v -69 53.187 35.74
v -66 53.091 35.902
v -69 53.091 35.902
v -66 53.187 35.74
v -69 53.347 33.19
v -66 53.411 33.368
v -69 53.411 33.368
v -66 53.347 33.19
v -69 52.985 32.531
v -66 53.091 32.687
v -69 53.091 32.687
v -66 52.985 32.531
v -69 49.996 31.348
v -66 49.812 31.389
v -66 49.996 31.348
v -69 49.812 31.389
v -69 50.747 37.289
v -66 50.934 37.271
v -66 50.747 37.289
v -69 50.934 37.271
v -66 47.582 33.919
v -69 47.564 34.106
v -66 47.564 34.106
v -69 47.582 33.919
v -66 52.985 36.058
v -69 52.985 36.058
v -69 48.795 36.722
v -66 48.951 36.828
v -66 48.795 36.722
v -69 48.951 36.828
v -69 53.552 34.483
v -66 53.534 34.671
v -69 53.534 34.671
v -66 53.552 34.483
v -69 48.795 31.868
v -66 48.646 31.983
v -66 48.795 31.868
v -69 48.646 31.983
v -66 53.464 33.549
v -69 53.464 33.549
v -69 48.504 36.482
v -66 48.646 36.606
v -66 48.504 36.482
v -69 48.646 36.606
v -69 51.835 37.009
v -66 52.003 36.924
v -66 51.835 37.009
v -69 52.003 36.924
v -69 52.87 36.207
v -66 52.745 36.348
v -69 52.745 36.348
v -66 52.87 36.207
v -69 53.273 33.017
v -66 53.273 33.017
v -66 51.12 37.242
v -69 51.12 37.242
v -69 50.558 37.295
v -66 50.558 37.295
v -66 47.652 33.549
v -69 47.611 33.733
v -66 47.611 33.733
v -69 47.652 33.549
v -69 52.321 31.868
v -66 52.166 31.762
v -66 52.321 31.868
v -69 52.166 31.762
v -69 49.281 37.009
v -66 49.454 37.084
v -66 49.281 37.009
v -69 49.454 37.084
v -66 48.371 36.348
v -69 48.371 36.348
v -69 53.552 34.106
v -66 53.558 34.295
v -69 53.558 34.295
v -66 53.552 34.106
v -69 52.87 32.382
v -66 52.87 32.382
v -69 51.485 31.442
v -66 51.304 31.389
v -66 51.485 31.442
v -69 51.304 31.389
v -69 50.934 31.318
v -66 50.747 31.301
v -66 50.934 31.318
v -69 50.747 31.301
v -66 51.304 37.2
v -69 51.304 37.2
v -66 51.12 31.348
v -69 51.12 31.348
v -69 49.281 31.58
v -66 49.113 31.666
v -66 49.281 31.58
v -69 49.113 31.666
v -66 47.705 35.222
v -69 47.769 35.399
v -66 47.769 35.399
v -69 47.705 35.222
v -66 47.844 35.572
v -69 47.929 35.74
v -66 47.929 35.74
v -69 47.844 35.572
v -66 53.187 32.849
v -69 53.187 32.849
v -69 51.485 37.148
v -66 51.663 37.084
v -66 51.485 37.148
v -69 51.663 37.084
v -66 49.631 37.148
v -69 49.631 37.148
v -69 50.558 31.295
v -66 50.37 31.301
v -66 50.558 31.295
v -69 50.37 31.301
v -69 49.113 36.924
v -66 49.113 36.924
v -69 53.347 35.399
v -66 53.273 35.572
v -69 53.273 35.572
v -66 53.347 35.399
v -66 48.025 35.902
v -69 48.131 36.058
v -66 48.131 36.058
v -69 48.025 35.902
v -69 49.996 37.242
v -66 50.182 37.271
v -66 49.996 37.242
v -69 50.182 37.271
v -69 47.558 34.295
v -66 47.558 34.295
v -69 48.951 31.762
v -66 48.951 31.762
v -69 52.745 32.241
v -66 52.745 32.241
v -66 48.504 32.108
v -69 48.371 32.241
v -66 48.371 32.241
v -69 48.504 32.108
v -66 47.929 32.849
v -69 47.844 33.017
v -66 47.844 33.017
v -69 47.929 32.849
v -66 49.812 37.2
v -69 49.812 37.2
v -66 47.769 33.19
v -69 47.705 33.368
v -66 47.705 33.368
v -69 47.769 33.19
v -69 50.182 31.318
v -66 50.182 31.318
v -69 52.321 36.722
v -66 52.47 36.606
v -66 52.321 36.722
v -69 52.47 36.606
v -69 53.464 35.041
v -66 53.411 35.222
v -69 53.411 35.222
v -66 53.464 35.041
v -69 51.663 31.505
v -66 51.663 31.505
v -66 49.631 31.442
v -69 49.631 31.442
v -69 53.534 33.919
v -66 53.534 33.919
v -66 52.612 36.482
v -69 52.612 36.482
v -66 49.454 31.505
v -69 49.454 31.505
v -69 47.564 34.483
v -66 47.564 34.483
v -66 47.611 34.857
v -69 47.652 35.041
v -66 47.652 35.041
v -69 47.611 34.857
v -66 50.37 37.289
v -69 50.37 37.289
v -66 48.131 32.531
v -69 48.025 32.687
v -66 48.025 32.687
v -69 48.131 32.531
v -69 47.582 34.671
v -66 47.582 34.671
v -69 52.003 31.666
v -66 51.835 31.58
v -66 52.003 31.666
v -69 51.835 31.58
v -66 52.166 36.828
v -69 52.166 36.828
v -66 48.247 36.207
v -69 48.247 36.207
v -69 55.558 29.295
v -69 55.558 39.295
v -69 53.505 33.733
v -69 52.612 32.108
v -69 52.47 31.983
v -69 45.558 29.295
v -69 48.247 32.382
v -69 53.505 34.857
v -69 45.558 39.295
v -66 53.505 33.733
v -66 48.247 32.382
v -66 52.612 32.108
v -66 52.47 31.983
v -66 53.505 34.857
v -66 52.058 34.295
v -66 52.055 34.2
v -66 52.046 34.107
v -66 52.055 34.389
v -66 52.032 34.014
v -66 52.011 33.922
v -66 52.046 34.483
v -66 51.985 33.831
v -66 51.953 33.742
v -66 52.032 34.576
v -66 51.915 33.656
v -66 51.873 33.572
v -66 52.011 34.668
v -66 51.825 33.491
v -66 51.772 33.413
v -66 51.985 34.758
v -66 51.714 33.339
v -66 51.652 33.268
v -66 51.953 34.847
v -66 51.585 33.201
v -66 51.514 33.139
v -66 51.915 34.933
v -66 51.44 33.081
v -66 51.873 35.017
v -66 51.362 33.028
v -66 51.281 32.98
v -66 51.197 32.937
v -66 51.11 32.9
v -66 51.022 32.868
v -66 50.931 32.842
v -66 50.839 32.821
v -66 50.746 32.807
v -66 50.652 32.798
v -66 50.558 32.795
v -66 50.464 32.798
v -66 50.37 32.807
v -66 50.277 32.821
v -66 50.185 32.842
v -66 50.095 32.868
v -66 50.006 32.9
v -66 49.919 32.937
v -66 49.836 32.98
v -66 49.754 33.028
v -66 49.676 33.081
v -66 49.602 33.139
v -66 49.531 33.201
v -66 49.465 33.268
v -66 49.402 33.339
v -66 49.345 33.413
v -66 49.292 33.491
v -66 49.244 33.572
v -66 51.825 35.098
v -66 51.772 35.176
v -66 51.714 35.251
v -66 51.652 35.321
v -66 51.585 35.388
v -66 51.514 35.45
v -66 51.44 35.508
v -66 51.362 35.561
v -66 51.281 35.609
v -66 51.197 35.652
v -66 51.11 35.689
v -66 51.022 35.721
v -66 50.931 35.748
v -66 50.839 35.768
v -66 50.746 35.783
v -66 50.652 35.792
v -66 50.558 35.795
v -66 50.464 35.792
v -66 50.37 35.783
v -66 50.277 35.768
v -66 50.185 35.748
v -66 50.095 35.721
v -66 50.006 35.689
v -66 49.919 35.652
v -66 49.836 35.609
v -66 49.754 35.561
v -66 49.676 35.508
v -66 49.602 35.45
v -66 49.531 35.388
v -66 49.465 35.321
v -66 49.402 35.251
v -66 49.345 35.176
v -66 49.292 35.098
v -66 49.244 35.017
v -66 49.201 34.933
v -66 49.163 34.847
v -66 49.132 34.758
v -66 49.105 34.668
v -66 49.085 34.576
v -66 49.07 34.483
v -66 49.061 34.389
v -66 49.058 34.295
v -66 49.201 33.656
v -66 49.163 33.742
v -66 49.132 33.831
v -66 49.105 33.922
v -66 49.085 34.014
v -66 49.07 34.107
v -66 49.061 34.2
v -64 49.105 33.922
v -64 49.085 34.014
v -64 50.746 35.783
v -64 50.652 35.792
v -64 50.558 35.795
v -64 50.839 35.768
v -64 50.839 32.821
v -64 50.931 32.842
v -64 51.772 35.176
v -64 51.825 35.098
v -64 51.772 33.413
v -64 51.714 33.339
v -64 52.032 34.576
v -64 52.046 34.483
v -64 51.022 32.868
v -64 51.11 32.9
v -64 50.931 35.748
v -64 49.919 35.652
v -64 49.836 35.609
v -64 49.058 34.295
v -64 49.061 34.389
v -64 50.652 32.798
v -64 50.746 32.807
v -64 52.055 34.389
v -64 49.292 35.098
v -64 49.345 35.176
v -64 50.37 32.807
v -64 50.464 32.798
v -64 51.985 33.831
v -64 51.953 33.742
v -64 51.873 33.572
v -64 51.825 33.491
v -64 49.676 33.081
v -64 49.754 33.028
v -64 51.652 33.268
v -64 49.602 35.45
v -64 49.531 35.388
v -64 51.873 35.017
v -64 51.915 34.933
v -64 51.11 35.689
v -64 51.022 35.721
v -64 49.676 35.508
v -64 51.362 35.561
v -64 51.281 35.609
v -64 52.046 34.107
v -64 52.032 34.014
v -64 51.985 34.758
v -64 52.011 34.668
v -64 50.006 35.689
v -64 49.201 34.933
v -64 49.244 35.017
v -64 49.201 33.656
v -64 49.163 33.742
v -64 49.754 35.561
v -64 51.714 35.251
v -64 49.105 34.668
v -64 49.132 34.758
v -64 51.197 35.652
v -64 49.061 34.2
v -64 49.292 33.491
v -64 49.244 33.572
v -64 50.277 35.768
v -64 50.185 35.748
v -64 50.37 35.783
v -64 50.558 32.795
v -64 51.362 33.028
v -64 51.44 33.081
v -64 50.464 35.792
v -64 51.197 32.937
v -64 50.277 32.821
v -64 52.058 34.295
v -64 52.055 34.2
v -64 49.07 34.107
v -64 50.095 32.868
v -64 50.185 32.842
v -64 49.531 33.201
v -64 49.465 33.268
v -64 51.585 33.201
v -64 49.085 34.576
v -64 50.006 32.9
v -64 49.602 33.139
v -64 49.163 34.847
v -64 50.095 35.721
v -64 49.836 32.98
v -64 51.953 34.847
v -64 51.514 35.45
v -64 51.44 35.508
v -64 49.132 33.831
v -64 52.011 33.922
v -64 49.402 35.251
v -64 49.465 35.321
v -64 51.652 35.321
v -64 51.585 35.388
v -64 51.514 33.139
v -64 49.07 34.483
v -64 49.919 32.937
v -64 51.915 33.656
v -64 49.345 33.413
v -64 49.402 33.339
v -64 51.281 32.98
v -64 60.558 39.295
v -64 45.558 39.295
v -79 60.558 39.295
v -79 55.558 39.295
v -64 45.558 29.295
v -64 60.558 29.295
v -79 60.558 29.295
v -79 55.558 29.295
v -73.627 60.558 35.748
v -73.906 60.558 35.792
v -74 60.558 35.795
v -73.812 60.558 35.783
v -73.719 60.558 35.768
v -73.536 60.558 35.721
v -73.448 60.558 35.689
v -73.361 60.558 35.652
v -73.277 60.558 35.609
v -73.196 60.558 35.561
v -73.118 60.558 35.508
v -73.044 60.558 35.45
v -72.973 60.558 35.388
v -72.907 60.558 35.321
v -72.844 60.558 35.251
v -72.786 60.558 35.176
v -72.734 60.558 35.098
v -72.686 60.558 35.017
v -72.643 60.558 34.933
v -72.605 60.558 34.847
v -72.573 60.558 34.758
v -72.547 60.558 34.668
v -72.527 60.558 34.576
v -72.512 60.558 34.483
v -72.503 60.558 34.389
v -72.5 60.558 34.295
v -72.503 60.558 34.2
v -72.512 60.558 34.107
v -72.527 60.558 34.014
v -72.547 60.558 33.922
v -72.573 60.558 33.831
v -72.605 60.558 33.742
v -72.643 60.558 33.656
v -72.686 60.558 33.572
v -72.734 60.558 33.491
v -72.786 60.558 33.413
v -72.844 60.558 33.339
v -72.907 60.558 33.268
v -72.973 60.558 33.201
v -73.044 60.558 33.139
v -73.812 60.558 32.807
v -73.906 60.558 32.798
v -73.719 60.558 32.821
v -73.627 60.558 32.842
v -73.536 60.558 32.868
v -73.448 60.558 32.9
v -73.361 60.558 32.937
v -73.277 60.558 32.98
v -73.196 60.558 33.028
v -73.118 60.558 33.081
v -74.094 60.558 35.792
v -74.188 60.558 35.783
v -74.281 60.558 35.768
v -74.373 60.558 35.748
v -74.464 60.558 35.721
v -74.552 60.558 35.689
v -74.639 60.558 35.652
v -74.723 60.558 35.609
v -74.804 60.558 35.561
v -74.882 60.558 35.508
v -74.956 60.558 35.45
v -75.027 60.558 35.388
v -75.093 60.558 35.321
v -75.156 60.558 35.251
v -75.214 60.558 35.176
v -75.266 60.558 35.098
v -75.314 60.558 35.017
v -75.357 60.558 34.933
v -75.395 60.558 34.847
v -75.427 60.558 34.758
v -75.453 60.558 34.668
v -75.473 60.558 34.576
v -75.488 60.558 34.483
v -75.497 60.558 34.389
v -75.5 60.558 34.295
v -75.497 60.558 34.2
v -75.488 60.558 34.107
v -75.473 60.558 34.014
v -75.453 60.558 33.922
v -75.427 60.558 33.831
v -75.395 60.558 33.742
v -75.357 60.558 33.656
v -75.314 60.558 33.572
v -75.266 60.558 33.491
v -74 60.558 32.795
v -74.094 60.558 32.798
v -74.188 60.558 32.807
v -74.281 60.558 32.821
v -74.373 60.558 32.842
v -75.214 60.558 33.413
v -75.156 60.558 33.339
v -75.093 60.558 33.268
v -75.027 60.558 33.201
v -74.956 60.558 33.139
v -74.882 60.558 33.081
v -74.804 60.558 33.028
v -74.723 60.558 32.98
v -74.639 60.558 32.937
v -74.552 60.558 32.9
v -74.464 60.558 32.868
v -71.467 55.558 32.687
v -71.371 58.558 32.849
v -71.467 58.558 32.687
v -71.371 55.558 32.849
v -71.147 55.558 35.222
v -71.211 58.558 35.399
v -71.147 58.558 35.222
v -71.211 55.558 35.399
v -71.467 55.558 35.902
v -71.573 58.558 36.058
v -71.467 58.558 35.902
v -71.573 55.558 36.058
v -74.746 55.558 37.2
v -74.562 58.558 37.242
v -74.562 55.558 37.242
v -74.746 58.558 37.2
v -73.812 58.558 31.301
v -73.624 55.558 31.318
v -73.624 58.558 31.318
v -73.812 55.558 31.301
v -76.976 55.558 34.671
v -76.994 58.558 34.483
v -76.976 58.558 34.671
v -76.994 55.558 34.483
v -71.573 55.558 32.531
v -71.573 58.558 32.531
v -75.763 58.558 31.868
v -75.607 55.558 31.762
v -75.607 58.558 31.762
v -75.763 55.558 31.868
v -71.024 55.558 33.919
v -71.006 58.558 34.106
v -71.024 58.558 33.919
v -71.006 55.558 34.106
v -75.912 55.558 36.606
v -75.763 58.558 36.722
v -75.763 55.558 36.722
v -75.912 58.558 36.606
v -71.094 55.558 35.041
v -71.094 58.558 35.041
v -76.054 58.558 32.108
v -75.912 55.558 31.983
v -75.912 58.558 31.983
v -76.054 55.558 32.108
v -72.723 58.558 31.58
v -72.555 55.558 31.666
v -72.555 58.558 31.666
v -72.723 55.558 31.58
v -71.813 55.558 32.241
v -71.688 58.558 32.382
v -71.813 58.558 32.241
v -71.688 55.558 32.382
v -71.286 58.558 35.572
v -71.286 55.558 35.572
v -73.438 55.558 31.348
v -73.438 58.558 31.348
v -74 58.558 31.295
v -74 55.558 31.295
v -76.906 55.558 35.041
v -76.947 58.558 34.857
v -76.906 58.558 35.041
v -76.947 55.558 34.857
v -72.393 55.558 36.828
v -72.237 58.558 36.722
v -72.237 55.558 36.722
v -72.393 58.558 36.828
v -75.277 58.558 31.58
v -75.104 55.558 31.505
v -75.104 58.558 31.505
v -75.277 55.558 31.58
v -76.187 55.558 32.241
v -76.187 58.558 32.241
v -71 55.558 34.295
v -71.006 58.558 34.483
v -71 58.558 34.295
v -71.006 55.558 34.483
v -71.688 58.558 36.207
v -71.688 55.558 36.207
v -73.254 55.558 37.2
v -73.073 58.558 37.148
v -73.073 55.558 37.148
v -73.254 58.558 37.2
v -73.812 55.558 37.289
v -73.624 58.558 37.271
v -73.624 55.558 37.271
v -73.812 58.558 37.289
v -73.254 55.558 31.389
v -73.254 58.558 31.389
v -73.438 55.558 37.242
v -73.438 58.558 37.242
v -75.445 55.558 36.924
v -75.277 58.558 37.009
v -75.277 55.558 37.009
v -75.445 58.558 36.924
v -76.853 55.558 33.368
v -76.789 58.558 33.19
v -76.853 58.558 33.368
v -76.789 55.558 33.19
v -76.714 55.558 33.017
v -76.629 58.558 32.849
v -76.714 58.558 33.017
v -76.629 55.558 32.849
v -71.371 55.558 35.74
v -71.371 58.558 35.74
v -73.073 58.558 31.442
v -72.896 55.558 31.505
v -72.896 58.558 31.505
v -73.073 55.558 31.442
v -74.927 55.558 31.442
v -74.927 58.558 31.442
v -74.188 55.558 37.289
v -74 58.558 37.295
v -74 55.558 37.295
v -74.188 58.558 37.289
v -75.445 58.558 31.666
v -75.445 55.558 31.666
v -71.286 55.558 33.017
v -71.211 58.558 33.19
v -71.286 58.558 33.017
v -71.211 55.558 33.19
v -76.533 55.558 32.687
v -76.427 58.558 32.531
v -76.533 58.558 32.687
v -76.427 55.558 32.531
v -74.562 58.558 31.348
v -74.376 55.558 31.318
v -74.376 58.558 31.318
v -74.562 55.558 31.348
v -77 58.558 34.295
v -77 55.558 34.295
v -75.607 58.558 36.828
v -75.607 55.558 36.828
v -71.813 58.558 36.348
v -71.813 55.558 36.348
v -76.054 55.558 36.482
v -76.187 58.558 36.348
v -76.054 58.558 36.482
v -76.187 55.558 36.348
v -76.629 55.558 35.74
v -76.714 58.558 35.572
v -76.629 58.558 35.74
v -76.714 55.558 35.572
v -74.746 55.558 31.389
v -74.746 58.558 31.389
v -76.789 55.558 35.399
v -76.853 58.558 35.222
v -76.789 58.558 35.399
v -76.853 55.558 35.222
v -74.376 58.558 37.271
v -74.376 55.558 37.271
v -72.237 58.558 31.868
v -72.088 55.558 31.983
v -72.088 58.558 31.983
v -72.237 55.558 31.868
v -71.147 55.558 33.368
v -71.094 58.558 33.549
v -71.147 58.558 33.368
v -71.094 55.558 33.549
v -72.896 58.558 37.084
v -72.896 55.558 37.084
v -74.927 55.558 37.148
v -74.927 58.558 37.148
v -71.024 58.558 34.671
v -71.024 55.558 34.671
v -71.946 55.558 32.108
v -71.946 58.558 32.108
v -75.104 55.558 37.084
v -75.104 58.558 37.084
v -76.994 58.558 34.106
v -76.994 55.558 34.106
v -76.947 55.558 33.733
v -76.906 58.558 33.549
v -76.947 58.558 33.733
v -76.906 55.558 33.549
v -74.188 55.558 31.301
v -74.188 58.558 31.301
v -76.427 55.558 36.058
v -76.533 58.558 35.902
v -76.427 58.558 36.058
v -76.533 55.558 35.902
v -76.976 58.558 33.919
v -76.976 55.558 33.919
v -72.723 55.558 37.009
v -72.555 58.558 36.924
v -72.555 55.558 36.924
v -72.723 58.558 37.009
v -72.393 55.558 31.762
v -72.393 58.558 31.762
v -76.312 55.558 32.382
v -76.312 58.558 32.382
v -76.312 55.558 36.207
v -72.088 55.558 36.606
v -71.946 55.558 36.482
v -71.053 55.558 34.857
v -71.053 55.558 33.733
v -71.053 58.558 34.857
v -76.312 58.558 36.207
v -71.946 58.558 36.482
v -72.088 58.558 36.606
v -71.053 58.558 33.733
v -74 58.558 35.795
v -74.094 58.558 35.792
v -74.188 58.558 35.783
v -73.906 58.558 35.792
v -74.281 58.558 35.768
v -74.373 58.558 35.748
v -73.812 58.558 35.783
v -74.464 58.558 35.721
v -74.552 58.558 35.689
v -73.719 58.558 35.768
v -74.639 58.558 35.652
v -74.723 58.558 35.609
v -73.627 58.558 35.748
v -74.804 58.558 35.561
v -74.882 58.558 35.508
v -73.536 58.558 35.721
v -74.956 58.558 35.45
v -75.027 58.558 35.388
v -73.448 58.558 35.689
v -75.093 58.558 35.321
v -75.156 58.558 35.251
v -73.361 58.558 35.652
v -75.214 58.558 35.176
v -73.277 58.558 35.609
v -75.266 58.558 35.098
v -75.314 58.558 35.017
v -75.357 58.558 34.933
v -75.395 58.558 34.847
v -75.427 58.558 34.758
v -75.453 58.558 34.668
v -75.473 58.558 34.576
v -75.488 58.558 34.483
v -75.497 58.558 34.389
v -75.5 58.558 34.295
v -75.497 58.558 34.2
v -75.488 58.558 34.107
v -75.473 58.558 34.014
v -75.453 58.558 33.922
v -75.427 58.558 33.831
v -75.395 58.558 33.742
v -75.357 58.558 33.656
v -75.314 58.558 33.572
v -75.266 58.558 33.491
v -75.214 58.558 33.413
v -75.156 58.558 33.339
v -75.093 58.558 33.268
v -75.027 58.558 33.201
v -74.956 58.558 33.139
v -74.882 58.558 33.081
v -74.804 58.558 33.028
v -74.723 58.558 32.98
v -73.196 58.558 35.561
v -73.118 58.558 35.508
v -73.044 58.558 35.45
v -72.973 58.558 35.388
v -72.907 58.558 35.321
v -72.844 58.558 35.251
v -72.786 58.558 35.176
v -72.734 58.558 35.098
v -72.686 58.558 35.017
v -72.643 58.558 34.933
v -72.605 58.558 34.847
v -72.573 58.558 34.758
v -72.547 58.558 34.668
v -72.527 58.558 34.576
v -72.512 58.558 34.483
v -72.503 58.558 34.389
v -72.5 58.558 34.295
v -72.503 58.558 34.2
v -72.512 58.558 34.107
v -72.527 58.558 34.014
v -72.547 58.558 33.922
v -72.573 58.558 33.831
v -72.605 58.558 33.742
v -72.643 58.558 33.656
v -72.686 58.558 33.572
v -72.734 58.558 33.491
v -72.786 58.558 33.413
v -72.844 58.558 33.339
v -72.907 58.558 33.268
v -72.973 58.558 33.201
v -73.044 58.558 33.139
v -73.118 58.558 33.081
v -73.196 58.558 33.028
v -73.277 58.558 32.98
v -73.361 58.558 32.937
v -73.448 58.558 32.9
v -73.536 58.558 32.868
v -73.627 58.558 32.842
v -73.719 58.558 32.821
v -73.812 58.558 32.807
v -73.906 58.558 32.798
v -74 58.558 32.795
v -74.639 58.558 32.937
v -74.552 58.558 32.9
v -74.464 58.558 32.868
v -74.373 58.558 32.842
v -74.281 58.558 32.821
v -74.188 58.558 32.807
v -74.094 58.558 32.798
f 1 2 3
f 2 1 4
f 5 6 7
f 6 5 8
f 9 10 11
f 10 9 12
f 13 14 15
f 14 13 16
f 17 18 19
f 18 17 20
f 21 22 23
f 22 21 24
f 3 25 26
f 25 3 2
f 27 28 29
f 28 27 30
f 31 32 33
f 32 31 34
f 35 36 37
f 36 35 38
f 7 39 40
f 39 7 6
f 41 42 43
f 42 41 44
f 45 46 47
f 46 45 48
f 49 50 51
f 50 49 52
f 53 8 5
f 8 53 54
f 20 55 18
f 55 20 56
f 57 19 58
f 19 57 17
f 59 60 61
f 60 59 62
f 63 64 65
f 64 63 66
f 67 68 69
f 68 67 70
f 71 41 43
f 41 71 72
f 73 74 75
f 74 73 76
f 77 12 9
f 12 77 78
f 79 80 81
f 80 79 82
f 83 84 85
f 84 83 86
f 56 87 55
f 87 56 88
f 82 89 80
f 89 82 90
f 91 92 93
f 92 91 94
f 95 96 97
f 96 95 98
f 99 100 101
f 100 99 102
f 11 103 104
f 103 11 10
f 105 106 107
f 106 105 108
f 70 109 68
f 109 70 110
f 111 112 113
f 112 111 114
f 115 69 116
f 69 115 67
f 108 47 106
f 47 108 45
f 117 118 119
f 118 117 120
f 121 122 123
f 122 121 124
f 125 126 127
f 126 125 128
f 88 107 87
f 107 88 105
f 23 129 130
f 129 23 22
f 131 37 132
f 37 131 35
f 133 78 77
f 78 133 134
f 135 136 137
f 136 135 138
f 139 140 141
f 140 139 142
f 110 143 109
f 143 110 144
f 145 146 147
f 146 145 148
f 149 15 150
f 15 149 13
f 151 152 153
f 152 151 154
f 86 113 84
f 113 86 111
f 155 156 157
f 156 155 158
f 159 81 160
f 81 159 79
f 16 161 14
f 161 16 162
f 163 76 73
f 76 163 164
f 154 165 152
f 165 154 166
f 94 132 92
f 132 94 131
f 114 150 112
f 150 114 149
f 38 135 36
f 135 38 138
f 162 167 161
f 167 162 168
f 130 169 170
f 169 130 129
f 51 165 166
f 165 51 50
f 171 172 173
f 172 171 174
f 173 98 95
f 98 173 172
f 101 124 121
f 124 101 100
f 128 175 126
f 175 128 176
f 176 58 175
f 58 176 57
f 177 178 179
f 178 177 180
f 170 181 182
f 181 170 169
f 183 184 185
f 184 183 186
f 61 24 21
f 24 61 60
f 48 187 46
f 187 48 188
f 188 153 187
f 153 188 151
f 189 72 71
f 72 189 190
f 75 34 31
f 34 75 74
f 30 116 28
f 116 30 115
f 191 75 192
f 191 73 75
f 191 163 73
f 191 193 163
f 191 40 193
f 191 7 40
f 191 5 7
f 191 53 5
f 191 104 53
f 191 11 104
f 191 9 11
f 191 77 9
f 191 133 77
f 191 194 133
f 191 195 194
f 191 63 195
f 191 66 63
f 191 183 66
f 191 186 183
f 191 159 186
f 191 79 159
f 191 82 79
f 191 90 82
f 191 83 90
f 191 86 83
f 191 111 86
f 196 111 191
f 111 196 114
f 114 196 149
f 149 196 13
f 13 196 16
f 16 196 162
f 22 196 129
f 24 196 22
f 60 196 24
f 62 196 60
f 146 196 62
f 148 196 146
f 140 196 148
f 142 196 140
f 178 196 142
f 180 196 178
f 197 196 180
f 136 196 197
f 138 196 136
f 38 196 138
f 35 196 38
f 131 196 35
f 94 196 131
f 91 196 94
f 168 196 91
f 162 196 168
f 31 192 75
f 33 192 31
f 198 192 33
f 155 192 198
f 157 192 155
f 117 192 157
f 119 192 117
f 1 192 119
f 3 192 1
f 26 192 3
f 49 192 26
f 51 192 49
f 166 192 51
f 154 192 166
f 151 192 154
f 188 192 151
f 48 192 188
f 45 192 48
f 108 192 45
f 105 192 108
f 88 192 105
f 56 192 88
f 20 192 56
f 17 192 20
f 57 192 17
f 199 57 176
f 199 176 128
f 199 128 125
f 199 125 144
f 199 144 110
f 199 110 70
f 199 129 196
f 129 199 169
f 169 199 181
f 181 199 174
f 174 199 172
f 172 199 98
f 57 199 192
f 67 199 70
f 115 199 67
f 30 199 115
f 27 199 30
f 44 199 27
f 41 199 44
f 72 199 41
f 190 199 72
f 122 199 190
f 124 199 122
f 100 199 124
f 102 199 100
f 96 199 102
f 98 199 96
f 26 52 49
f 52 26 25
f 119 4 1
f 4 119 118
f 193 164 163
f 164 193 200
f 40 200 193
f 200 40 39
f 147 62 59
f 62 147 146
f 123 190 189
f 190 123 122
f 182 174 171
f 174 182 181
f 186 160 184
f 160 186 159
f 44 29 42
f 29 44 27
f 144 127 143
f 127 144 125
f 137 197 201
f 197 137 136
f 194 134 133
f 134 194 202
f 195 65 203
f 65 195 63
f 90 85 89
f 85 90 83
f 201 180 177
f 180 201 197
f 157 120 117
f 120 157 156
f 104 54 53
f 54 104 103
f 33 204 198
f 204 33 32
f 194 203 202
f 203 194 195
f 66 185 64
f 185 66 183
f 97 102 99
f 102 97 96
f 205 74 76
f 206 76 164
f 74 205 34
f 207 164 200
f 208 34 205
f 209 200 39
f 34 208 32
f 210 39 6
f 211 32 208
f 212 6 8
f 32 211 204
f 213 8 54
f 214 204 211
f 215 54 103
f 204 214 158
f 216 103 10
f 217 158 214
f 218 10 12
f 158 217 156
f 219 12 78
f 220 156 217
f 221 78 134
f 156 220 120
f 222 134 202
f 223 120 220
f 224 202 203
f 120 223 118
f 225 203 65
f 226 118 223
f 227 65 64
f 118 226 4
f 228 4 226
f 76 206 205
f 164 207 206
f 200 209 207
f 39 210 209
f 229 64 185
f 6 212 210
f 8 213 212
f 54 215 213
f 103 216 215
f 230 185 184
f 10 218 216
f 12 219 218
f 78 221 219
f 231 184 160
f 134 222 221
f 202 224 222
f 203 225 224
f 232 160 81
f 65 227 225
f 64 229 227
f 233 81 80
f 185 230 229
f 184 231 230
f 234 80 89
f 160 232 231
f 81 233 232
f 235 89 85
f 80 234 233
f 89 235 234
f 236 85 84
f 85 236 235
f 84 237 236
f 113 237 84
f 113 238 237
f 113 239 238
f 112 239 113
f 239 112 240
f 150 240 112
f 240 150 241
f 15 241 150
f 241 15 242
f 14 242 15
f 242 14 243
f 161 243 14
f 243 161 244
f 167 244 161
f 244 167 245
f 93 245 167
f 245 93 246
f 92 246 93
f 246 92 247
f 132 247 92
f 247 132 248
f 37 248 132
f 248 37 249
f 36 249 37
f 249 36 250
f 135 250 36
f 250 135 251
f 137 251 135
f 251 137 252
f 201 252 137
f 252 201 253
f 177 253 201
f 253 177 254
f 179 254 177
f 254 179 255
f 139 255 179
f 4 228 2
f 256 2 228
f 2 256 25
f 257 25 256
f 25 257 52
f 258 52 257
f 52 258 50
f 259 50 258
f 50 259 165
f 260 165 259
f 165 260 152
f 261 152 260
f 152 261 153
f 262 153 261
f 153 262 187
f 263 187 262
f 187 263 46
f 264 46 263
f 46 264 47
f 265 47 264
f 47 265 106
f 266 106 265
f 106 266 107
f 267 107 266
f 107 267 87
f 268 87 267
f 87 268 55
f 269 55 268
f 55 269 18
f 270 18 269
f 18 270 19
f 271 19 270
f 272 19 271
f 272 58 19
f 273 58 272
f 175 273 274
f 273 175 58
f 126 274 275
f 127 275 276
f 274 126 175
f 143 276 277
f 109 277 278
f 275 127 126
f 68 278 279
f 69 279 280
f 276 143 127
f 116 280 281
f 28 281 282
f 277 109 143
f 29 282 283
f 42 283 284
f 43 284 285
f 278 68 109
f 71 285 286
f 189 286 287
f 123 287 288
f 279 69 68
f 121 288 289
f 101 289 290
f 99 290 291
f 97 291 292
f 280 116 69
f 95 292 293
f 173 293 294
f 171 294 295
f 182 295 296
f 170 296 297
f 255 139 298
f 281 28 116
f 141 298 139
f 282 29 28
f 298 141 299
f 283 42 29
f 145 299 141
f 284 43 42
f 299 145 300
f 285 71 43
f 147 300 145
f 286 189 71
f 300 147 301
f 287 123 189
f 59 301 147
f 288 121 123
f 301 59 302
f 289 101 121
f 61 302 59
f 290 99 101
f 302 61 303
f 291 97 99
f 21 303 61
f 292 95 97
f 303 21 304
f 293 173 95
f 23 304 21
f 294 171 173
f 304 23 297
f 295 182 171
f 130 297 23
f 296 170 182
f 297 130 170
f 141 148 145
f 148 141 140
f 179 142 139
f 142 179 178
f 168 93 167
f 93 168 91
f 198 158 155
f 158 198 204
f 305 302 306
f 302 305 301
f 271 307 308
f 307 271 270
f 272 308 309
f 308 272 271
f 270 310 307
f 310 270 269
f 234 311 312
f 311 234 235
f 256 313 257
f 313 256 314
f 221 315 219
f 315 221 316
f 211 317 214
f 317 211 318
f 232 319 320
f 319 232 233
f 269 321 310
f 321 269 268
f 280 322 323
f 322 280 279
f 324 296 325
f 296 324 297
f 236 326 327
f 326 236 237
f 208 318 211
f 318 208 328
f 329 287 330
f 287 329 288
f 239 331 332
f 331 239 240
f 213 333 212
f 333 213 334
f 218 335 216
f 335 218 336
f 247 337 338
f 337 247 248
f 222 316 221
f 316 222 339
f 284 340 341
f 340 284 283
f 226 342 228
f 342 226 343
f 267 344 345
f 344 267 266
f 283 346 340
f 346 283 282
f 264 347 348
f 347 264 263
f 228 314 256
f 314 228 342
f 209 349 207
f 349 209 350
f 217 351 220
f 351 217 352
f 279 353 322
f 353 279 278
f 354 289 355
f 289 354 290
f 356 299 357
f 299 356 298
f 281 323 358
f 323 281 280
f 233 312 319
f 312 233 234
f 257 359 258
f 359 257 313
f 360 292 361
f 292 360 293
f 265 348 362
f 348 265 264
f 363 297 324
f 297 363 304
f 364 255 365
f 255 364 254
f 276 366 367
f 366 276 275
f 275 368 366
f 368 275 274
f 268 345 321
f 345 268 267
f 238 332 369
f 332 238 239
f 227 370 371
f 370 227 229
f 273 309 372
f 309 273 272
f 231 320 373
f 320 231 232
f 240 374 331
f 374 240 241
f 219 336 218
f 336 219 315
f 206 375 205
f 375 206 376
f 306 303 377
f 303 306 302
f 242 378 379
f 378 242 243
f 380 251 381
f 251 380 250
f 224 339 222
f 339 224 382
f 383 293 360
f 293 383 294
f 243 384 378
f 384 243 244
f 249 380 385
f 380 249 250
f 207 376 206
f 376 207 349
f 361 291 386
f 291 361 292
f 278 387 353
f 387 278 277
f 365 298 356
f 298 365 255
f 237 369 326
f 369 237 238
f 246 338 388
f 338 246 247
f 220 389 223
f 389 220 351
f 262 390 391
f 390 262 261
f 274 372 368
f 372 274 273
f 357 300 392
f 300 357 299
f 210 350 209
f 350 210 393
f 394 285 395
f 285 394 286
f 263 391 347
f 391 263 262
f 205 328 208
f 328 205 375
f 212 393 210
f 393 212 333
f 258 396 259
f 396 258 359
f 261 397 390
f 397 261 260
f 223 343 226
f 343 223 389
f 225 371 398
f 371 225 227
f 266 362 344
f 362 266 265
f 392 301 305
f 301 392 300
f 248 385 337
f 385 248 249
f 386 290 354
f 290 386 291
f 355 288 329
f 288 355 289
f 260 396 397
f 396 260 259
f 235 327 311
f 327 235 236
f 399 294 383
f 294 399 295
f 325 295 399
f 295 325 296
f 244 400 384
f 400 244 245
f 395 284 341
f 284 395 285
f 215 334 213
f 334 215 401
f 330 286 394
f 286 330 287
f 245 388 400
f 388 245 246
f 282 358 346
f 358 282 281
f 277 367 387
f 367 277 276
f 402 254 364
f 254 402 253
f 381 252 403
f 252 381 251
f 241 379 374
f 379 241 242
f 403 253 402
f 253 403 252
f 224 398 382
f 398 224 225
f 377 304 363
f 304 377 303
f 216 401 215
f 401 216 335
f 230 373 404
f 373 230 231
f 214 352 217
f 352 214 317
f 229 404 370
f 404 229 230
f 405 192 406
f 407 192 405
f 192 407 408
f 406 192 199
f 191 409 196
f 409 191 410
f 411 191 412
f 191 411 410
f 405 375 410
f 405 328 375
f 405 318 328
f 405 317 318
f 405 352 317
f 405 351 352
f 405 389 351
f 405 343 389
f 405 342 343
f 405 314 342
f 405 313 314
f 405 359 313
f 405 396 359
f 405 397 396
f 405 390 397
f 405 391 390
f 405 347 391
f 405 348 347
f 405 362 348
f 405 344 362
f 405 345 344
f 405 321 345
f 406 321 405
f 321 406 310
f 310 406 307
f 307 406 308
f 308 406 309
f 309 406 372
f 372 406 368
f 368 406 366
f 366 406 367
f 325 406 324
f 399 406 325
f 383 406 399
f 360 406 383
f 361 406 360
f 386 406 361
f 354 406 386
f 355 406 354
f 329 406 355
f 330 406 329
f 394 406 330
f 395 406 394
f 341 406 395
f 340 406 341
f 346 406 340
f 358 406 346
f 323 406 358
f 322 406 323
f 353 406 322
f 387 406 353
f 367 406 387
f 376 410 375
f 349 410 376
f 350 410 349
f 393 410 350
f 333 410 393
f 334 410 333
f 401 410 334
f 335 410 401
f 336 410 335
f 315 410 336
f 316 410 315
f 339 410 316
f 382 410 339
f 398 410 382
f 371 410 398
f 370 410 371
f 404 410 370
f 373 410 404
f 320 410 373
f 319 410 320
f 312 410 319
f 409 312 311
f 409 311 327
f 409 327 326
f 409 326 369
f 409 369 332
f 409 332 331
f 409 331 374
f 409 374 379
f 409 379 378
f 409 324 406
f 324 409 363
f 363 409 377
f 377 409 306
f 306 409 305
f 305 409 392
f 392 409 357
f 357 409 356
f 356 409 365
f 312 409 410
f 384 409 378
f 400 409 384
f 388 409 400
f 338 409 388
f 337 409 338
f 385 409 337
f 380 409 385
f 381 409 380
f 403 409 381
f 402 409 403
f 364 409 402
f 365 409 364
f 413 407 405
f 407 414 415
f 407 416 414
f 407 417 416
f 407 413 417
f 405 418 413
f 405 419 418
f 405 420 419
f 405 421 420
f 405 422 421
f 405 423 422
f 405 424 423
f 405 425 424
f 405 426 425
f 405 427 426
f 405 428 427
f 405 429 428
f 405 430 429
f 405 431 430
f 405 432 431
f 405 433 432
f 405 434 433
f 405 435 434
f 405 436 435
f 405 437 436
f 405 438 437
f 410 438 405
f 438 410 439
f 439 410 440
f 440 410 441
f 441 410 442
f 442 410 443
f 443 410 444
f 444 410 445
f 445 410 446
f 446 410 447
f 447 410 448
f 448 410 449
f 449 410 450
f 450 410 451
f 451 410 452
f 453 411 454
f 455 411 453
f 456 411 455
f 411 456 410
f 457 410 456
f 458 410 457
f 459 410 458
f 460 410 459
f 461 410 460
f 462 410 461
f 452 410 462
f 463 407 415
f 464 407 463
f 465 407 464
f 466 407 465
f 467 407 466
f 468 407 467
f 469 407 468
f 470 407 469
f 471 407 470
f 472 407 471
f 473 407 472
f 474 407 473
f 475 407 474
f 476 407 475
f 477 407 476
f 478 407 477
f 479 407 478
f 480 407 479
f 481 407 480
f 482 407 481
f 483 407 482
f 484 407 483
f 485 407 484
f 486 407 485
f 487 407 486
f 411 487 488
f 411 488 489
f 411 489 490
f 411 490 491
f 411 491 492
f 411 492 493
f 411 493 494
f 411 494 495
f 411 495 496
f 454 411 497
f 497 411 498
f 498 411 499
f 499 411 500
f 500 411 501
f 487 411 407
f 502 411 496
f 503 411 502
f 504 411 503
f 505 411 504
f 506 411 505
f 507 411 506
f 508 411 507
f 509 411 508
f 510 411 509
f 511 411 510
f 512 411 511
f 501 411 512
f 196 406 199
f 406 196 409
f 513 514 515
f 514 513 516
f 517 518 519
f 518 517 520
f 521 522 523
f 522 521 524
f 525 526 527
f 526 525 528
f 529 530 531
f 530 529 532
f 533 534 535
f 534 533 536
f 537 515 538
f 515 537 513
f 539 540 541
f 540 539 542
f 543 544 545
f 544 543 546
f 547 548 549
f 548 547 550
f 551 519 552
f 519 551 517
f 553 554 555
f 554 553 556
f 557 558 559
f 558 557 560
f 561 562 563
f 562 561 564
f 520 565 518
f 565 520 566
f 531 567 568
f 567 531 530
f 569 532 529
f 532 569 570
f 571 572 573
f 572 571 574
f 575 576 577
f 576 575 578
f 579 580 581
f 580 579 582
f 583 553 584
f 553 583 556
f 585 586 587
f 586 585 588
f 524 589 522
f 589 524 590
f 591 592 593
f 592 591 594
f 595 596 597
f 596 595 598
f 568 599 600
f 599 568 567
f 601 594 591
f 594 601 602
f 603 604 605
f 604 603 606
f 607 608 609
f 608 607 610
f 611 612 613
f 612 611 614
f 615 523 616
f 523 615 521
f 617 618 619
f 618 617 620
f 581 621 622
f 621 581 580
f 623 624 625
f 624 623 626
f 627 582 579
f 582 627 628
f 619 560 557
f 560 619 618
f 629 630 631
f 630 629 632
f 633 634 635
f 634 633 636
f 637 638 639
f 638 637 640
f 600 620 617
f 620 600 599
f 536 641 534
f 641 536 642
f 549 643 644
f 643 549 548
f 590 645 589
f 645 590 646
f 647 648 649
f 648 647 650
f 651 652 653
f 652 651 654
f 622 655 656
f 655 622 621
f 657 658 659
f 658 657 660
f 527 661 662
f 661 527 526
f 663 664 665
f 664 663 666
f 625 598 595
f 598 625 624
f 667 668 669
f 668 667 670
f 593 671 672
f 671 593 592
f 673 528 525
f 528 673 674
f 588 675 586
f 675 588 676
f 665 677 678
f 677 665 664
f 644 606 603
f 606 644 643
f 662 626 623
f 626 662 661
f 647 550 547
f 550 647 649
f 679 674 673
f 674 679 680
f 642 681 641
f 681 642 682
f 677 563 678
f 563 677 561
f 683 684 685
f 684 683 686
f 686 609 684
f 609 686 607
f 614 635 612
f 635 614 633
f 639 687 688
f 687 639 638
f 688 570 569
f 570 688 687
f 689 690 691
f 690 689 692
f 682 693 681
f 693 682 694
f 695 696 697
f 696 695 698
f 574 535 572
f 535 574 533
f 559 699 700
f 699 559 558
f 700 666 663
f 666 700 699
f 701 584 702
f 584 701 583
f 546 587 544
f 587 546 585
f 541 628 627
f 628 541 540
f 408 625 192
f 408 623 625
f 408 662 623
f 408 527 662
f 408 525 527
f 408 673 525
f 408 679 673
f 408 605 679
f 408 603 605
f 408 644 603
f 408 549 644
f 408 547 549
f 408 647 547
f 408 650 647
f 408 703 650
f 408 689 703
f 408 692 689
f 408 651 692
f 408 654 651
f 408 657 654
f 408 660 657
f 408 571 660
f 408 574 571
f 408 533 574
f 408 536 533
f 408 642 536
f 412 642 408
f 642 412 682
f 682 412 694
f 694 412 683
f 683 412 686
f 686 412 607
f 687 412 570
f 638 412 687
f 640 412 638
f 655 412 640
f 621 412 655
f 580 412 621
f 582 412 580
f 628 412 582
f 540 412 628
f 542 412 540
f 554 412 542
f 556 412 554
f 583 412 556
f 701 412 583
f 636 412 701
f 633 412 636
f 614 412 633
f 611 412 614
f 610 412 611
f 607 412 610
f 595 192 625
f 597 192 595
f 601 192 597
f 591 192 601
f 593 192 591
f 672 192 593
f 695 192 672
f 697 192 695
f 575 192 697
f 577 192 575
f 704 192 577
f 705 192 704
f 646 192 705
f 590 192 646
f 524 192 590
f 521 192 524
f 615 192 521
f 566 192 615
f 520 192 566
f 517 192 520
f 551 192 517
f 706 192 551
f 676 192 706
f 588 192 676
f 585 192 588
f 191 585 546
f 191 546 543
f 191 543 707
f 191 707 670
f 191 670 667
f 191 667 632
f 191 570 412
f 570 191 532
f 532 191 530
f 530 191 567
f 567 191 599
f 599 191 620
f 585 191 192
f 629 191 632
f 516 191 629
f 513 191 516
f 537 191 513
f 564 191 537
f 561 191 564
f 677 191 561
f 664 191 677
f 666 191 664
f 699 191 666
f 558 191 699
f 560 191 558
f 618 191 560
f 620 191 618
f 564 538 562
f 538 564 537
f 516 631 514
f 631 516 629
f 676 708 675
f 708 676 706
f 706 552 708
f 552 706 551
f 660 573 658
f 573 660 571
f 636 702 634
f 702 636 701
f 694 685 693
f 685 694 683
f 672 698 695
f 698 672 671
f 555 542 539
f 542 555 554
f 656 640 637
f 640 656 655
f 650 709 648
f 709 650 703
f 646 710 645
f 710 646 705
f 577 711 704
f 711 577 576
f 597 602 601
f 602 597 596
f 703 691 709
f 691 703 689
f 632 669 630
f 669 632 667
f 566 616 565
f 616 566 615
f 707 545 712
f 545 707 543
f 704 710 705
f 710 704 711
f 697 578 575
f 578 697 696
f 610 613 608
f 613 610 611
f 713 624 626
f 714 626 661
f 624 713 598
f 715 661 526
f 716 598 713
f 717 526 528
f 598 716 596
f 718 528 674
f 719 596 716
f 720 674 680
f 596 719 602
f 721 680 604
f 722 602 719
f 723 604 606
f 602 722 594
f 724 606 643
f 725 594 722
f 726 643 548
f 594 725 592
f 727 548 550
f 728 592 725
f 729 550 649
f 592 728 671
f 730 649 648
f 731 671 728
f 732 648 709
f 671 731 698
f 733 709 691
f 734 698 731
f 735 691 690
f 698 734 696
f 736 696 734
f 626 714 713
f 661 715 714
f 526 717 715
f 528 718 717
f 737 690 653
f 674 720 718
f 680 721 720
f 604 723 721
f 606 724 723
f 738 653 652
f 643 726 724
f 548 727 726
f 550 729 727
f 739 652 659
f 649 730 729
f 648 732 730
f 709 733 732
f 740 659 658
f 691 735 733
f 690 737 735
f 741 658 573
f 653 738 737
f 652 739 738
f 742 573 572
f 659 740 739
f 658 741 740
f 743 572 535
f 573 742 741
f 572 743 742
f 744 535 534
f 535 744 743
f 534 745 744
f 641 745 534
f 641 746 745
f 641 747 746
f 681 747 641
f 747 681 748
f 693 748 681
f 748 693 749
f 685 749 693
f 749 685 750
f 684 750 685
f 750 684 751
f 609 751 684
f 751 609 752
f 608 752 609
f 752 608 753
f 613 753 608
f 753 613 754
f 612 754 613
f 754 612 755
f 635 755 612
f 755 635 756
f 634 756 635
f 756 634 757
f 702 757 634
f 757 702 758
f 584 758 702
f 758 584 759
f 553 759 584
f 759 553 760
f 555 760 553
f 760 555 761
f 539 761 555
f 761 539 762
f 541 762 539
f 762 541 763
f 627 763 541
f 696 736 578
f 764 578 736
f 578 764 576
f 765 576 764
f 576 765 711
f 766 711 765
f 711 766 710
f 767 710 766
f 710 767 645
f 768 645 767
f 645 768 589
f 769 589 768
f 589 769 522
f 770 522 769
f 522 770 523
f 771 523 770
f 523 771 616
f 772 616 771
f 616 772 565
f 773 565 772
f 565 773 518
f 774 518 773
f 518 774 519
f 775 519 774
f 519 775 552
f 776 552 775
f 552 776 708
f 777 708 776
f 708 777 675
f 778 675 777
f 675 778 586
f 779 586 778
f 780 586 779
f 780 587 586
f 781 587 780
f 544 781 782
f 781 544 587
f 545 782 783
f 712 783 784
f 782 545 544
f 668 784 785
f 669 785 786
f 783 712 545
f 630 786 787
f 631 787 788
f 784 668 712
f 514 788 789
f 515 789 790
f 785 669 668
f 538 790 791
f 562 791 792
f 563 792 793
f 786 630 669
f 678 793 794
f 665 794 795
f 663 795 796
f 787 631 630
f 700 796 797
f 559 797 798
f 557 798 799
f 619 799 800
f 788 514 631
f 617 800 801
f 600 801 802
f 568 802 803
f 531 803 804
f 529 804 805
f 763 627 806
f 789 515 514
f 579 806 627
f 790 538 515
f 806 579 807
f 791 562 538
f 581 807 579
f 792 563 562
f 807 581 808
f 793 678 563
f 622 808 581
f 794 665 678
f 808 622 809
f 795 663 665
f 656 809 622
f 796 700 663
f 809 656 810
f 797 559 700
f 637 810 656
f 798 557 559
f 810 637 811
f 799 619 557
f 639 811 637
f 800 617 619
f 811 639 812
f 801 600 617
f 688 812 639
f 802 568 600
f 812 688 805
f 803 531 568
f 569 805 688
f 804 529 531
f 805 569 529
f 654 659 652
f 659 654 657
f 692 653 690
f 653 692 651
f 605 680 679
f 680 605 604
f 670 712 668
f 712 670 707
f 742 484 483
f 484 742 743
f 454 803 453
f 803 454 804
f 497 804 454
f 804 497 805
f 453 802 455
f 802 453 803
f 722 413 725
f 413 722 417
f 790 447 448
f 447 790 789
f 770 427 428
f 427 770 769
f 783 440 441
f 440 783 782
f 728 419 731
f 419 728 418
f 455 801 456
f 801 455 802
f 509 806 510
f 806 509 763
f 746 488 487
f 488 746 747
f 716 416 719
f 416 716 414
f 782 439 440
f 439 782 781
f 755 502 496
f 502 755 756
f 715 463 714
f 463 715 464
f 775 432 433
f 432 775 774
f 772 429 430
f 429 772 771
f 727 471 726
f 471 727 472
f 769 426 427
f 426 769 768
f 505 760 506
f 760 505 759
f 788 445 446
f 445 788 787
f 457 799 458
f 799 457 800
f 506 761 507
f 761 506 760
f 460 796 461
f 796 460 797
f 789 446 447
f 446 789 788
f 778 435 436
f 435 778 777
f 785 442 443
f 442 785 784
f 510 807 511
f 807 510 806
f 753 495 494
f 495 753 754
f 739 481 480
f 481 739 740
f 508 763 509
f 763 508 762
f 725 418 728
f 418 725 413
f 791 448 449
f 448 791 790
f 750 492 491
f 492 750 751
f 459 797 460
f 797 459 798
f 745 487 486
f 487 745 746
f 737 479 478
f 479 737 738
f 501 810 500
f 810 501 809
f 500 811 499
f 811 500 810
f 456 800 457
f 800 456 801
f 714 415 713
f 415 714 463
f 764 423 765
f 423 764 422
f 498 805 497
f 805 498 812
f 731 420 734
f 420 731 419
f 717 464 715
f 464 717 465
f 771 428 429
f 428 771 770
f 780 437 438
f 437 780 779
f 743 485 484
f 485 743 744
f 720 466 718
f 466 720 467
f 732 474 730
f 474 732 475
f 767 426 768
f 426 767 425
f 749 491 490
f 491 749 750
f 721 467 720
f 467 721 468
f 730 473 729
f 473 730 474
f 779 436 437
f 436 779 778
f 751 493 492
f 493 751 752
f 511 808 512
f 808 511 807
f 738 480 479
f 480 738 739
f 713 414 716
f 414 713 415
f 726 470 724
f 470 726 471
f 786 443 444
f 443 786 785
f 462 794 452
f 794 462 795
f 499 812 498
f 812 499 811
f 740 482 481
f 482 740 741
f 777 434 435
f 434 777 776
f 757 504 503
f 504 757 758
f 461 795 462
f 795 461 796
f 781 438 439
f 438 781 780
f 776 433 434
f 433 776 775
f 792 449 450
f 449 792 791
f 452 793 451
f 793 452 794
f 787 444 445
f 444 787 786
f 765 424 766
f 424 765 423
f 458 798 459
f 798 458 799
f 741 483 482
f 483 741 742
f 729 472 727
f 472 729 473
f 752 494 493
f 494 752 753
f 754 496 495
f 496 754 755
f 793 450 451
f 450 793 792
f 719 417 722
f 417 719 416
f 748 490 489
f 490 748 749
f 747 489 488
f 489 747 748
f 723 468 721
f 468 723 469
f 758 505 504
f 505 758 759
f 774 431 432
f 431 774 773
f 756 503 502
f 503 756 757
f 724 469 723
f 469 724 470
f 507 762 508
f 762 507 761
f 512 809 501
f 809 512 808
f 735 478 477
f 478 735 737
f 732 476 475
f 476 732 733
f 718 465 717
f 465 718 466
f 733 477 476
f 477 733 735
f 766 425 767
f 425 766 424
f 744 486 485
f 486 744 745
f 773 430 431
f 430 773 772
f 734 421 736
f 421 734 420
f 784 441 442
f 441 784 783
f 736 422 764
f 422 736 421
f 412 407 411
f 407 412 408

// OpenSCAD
// file: ../nut.scad
// 1.5^2 + y^2 = 3^2
// sqrt(3^2 - 1.5^2)
//       30
//    /   |
// 60  - 90
// cos(30) = x / 3
// x = 3 cos(30)
module hex(side_length=3) {
  points = [[0,0], [side_length, 0], [side_length / 2, side_length * cos(30)]];
  for (i=[0:1:5]) {
    rotate([0,0,i * 60]) polygon(points);
  }
}

module hex_nut(side_length=3, height=2) {
    linear_extrude(height=height) hex(side_length);
}

module square_nut(side_length=5, height=2) {
    cube([5,5,2]);
}
// file: ../screw.scad
$fn=100;

module screw(screw_head_radius=3, screw_head_height=3, threaded_radius=1.5, threaded_height=10) {
  // screw head
  cylinder(h=screw_head_height, r=screw_head_radius);

  translate([0, 0, screw_head_height]) {
    cylinder(h=threaded_height, r=threaded_radius);
  }
}

// m3x10

screw(screw_head_radius=3, screw_head_height=3, threaded_radius=1.5, threaded_height=10);
// file: ../shoulder_strap_support_screws.scad
use <screw_with_nut.scad>
module shoulder_strap_support_screws(wideness=15, threaded_height=8, nut_type="hex") {
  // left hole
  translate([wideness,0,5]) {
    color([1, 0, 0]) rotate([-90,0,0]) screw_with_nut(
        threaded_height=threaded_height,
        nut_type=nut_type
    );
  }

  // right hole
  translate([-wideness,0,5]) {
    color([1, 0, 0]) rotate([-90,0,0]) screw_with_nut(
      threaded_height=threaded_height,
      nut_type=nut_type
    );
  }
}
// file: ../smoothed_edge.scad
module smoothed_edge(radius=1.5, height=64) {
  difference() {
    difference() {
      color([1, 0, 0]) cylinder(h=height, r=radius);
      translate([-radius, 0, 0]) {
        color([0, 1, 0]) cube([radius * 2, radius, height]);
      }
    }

    translate([0, -radius, 0]) {
      color([0, 1, 0]) cube([radius, radius * 2, height]);
    }
  }
}
// file: ../smoothed_corner.scad
$fn=200;
module smoothed_corner(radius=5) {
  difference() {
    sphere(radius);
    union() {
      translate([0,-5,-5]) {
        cube([5,10,10]);
      }

      translate([-10,0,-5]) {
        cube([10, 10, 10]);
      }

      translate([-5,-5,0]) {
        cube([10,10,10]);
      }
    }

  }
}

smoothed_corner();
// file: ../screw_with_nut.scad
use <screw.scad>
use <nut.scad>

module screw_with_nut(hex_nut_height=2, screw_head_height=3, threaded_height=10, threaded_radius=1.5, screw_head_radius=3, hex_nut_side_length=3, square_nut_height=2, square_nut_side_length=5, nut_type="hex") {
  screw(screw_head_radius=screw_head_radius, screw_head_height=screw_head_height, threaded_radius=threaded_radius, threaded_height=threaded_height);

  if (nut_type == "hex") {
    translate([0,0, screw_head_height + threaded_height - hex_nut_height]) {
      hex_nut(side_length=hex_nut_side_length, height=hex_nut_height);
    }
  } else {
    translate([
        -square_nut_side_length / 2,
        -square_nut_side_length / 2,
        screw_head_height + threaded_height - square_nut_height
    ]) {
      square_nut(side_length=square_nut_side_length, height=square_nut_height);
    }
  }
}

screw_with_nut(nut_type="square");
// file: ../shoulder_strap_half_ring.scad
use <screw_with_nut.scad>
use <smoothed_cube.scad>
use <shoulder_strap_support_screws.scad>

$fn = 200;

module screwable() {
    smoothed_cube(
      x=13,
      y=5,
      z=10,

      radius_1=2,
      radius_2=2,
      edge_1_2_radius=2,
      edge_2_6_radius=2,
      edge_1_5_radius=2,
      edge_4_1_radius=2,
      edge_2_3_radius=2,
      edge_3_4_radius=2,
      edge_3_7_radius=2,
      edge_4_8_radius=2,
      radius_3=2,
      radius_4=2
      // edge_4_1_radius=2,
    );
}

module to_remove(r) {
  cylinder(h=10, r=r-4);
  translate([-8,0,0]) {
    cube([16, 100, 100]);
  }
  translate([-25,5,0]) {
    cube([50, 50, 50]);
  }
}


module half_ring_without_holes(r=25.4) {
  difference() {
    // translate([0,2,5]) {
      // rotate([180,0,0])
        // rotate_extrude(convexity = 10, angle=180)
        // translate([10, 0, 0])
        // circle(r = 2, $fn = 100);

    // }
    translate([0,1,2]) {
      cylinder(h=6, r=r);
    }
    to_remove(r);

  }

  // left side support
  translate([8,0,0]) {
    screwable();
  }

  // right side support
  translate([-8,0,10]) {
    rotate([0,180,0])
    screwable();
  }
}

module shoulder_strap_half_ring(screws_only=false, threaded_height=8, nut_type="hex") {
  if (screws_only) {
    shoulder_strap_support_screws(
      wideness=16,
      threaded_height=threaded_height,
      nut_type=nut_type
    );
  } else {
    difference() {
      half_ring_without_holes(r=12);
      shoulder_strap_support_screws(
          wideness=16,
          threaded_height=threaded_height,
          nut_type=nut_type
      );
    }
  }
}


shoulder_strap_half_ring();


// to_remove();
// file: ../smoothed_cube.scad
use <smoothed_corner.scad>
use <smoothed_edge.scad>
$fn=100;
//    5   8
// 1   4
//    6   7
// 2   3
module smoothed_cube(
  radius_1=0,
  radius_2=0,
  radius_3=0,
  radius_4=0,
  radius_5=0,
  radius_6=0,
  radius_7=0,
  radius_8=0,
  x=300,
  y=200,
  z=100,
  edge_1_2_radius=0,
  edge_2_3_radius=0,
  edge_3_4_radius=0,
  edge_4_1_radius=0,
  edge_1_5_radius=0,
  edge_5_6_radius=0,
  edge_6_7_radius=0,
  edge_7_8_radius=0,
  edge_8_4_radius=0,
  edge_2_6_radius=0,
  edge_3_7_radius=0,
  edge_4_8_radius=0,
) {

  difference() {
    cube([x, y, z]);
    union() {
      // edge between vertices 1 and 2
      color([1,0,0]) cube([edge_1_2_radius, edge_1_2_radius,z]);
      // edge between vertices 2 and 3
      color([1,0,0]) cube([x, edge_1_2_radius, edge_1_2_radius]);

      // edge between vertices 3 and 4
      translate([x - edge_3_4_radius, 0, 0]) {
        color([1,0,0]) cube([edge_3_4_radius, edge_3_4_radius,z]);
      }

      // edge between vertices 4 and 1
      translate([0,0,z-edge_4_1_radius]) {
        color([1,0,0]) cube([x, edge_4_1_radius, edge_4_1_radius]);
      }

      // edge from vertex 1 to 5
      translate([0, radius_1,z - edge_1_5_radius]) {
        color([1,0,0]) cube([edge_1_5_radius,y - radius_5,edge_1_5_radius]);
      }

      // edge from vertex 2 to 6
      translate([0, radius_1,0]) {
        color([1,0,0]) cube([edge_1_5_radius,y - radius_5,edge_1_5_radius]);
      }
    }
  }

  // smooth edge from vertex 1 to 2
  translate([edge_1_2_radius, edge_1_2_radius, +radius_2]) {
    smoothed_edge(radius=edge_1_2_radius, height=z - radius_2 - radius_1);
  }

  // smooth corner vertex 2
  translate([edge_1_2_radius, edge_1_2_radius, +radius_2]) {
    smoothed_corner(radius=radius_2);
  }

  // smooth corner vertex 1
  translate([edge_1_2_radius, edge_1_2_radius, z - radius_1]) {
    rotate([-90,0,0]) smoothed_corner(radius=radius_1);
  }

  // smooth edge from vertex 2 to 3
  translate([radius_2,edge_2_3_radius,edge_2_3_radius]) {
    rotate([90,0,0])
      rotate([0,90,0])
      smoothed_edge(radius=edge_2_3_radius, height=x - radius_3 - radius_2);
  }

  // smooth corner vertex 3
  translate([x - radius_3, radius_3, radius_3]) {
    rotate([-90,0,0])
    rotate([0,0,-180]) smoothed_corner(radius=radius_3);
  }

  // smooth edge from vertex 3 to 4
  translate([x - edge_3_4_radius, edge_3_4_radius, +radius_3]) {
    rotate([0,0,90])
    smoothed_edge(radius=edge_3_4_radius, height=z - radius_4 - radius_3);
  }

  // smooth corner vertex 4
  translate([x-radius_4, radius_4, z - radius_4]) {
    rotate([0,180,0]) smoothed_corner(radius=radius_4);
  }

  // smooth edge from vertex 4 to 1
  translate([radius_1,edge_4_1_radius,z - edge_4_1_radius]) {
    rotate([0,0,0])
      rotate([0,90,0])
      smoothed_edge(radius=edge_4_1_radius, height=x - radius_4 - radius_1);
  }

  // smooth edge from vertex 1 to 5
  translate([edge_1_5_radius, radius_1, z - edge_1_5_radius]) {
    rotate([-90,0,0])
      smoothed_edge(radius=edge_1_5_radius, height=y - radius_1 - radius_5);
  }

  // smooth corner vertex 5
  translate([edge_1_5_radius, y - radius_5, z - radius_5]) {
    rotate([180,0,0]) smoothed_corner(radius=radius_1);
  }

  // smooth edge from vertex 2 to 6
  translate([edge_2_6_radius, radius_2, edge_2_6_radius]) {
    rotate([0,-90,0])
      rotate([-90,0,0])
      smoothed_edge(radius=edge_2_6_radius, height=y - radius_1 - radius_5);
  }


  // smooth corner vertex 6
  translate([radius_6, y - radius_6,  radius_6 ]) {
    rotate([90,0,0])
    smoothed_corner(radius=radius_6);
  }
  // translate([edge_1_2_radius, edge_1_2_radius, +radius_2]) {
    // smoothed_edge(radius=edge_1_2_radius, height=z - radius_2 - radius_1);
  // }

}


edge_1_2_radius = 5;
edge_2_3_radius = 5;
edge_3_4_radius = 5;
edge_4_1_radius = 5;
edge_1_5_radius = 5;
edge_2_6_radius = 5;
radius_1 = 5;
radius_2 = 5;
radius_3 = 5;
radius_4 = 5;
radius_5 = 5;
radius_6 = 5;
x=300;
y = 200;
z=100;

// smoothed_cube(edge_1_2_radius=5, radius_2=5, radius_1=5, edge_2_3_radius=5);
smoothed_cube(edge_1_2_radius=5, radius_2=5, radius_1=5, edge_2_3_radius=5, edge_3_4_radius=5, radius_3=5, radius_4=5, edge_4_1_radius=5, radius_5=5, edge_1_5_radius=5, edge_2_6_radius=5, radius_6=5);
// file: ../usbc_female.scad
$fn=100;
module usbc_female() {
  // left half cylinder
  rotate([-90,0,0]) cylinder(h=20, r=3.25);

  translate([0,0,-3.25]) {
    cube([7,20,6.5]);
  }

  // right half cylinder
  translate([7,0,0]) {
    rotate([-90,0,0]) cylinder(h=20, r=3.25);
  }
}

usbc_female();
// file: ../switch.scad
$fn = 200;
module switch_hole() {
  translate([0,0,-6.5]) {
    color([1,0,0]) cube([5,8,13]);
  }
  rotate([0,90,0]) cylinder(h=5, r=6.5);
  translate([0,8,0]) {
    rotate([0,90,0]) cylinder(h=5, r=6.5);
  }
}

function get_switch_x() = 62.5;
function get_switch_y() = 27;

module switch() {
  // make the front curvy
  intersection() {
    // remove a cylinder from the back to add a curve
    difference() {
      cube([get_switch_x(),get_switch_y(),18]);

      translate([30,27,345]) {
        rotate([90,0,0])
        color([1,0,0])
        cylinder(h=27, r=330.2);
      }
    }

    translate([30,27,331]) {
      rotate([90,0,0])
      color([1,0,0])
      cylinder(h=27, r=330.2);
    }
  }

  // switch_hole();
  translate([65 / 2 + 2.5, 12.5,1.5]) {
    rotate([0,90,90]) { switch_hole(); }
  }
}

// translate([30,27,345]) {
  // rotate([90,0,0])
  // color([1,0,0])
  // cylinder(h=27, r=330.2);
// }
switch();
// file: ../airgowear/fan.scad
$fn=100;
module fan_hole(depth=5, padding_radius=0) {

  color([0,1,1])
    rotate([90,0,0])
    cylinder(h=depth, r=40 + padding_radius);
}

module exhaust(depth=2, height=10) {
  difference() {
    cube([60,33,height]);

    translate([depth,depth,0]) {
      cube([60 - depth * 2,33 - depth * 2,height]);
    }
  }
}
module fan() {
  cube([120, 33, 120]);

  translate([0,0, 120]) {
    cube([60,33,10]);
  }
  translate([65,38,60]) {
    color([1,0,0])
    fan_hole();
  }
}

fan();
// file: ../noctua_speed_controller.scad
$fn = 100;
module noctua_speed_controller(led_height=14.5) {
  cube([40,25,14]);
  // speed dial
  translate([16,25 / 2,14]) {
    cylinder(h=7, r=3.75);
  }

  // left LED
  translate([8, 3.5, 0]) {
    cylinder(h=led_height, r=1.5);
  }

  // right LED
  translate([8, 25 - 3.5, 0]) {
    cylinder(h=led_height, r=1.5);
  }
}

noctua_speed_controller();
  // translate([8, 3.5, 0]) {
    // cylinder(h=3, r=1.5);
  // }
// file: ../tcore_powerbank.scad
module tcore_powerbank() {
  cube([70,70,30]);
  translate([70 / 5, 70 / 2, 30]) {
    color([1,0,0])
    cylinder(h=5, r=10);
  }
}

tcore_powerbank();
// file: filter.scad
$fn = 200;

module filter() {
  linear_extrude(height=38.1)
  difference() {
    difference() {
      // outer circle
      scale([1,1.4,1]) {
        translate([2.5,-50,0]) {
          color([0,1,0])  circle(192);
        }
      }

      // inner circle (stretched)
      scale([1,1.3,1]) {
        translate([0,-5,0]) {
          color([1,0,0])  circle(75);
        }
      }
    }


    union() {

      // remove extra left side
      translate([-75,-205,0]) {
      rotate([0,0,78])
        color([1,0,0])
        square(200);
      }

      // remove extra right side
      translate([75,0,0]) {
      rotate([0,0,-78])
        color([1,0,0])
        square(1000);
      }

      // remove extra top side
      translate([-200,-350, 0]) {
        color([1,0,0])
          square(350);
      }
    }
  }
}

filter();
// main file
use <body.scad>

rotate([45,0,0])
left_elbow_screw_holders(show_screws=false);
